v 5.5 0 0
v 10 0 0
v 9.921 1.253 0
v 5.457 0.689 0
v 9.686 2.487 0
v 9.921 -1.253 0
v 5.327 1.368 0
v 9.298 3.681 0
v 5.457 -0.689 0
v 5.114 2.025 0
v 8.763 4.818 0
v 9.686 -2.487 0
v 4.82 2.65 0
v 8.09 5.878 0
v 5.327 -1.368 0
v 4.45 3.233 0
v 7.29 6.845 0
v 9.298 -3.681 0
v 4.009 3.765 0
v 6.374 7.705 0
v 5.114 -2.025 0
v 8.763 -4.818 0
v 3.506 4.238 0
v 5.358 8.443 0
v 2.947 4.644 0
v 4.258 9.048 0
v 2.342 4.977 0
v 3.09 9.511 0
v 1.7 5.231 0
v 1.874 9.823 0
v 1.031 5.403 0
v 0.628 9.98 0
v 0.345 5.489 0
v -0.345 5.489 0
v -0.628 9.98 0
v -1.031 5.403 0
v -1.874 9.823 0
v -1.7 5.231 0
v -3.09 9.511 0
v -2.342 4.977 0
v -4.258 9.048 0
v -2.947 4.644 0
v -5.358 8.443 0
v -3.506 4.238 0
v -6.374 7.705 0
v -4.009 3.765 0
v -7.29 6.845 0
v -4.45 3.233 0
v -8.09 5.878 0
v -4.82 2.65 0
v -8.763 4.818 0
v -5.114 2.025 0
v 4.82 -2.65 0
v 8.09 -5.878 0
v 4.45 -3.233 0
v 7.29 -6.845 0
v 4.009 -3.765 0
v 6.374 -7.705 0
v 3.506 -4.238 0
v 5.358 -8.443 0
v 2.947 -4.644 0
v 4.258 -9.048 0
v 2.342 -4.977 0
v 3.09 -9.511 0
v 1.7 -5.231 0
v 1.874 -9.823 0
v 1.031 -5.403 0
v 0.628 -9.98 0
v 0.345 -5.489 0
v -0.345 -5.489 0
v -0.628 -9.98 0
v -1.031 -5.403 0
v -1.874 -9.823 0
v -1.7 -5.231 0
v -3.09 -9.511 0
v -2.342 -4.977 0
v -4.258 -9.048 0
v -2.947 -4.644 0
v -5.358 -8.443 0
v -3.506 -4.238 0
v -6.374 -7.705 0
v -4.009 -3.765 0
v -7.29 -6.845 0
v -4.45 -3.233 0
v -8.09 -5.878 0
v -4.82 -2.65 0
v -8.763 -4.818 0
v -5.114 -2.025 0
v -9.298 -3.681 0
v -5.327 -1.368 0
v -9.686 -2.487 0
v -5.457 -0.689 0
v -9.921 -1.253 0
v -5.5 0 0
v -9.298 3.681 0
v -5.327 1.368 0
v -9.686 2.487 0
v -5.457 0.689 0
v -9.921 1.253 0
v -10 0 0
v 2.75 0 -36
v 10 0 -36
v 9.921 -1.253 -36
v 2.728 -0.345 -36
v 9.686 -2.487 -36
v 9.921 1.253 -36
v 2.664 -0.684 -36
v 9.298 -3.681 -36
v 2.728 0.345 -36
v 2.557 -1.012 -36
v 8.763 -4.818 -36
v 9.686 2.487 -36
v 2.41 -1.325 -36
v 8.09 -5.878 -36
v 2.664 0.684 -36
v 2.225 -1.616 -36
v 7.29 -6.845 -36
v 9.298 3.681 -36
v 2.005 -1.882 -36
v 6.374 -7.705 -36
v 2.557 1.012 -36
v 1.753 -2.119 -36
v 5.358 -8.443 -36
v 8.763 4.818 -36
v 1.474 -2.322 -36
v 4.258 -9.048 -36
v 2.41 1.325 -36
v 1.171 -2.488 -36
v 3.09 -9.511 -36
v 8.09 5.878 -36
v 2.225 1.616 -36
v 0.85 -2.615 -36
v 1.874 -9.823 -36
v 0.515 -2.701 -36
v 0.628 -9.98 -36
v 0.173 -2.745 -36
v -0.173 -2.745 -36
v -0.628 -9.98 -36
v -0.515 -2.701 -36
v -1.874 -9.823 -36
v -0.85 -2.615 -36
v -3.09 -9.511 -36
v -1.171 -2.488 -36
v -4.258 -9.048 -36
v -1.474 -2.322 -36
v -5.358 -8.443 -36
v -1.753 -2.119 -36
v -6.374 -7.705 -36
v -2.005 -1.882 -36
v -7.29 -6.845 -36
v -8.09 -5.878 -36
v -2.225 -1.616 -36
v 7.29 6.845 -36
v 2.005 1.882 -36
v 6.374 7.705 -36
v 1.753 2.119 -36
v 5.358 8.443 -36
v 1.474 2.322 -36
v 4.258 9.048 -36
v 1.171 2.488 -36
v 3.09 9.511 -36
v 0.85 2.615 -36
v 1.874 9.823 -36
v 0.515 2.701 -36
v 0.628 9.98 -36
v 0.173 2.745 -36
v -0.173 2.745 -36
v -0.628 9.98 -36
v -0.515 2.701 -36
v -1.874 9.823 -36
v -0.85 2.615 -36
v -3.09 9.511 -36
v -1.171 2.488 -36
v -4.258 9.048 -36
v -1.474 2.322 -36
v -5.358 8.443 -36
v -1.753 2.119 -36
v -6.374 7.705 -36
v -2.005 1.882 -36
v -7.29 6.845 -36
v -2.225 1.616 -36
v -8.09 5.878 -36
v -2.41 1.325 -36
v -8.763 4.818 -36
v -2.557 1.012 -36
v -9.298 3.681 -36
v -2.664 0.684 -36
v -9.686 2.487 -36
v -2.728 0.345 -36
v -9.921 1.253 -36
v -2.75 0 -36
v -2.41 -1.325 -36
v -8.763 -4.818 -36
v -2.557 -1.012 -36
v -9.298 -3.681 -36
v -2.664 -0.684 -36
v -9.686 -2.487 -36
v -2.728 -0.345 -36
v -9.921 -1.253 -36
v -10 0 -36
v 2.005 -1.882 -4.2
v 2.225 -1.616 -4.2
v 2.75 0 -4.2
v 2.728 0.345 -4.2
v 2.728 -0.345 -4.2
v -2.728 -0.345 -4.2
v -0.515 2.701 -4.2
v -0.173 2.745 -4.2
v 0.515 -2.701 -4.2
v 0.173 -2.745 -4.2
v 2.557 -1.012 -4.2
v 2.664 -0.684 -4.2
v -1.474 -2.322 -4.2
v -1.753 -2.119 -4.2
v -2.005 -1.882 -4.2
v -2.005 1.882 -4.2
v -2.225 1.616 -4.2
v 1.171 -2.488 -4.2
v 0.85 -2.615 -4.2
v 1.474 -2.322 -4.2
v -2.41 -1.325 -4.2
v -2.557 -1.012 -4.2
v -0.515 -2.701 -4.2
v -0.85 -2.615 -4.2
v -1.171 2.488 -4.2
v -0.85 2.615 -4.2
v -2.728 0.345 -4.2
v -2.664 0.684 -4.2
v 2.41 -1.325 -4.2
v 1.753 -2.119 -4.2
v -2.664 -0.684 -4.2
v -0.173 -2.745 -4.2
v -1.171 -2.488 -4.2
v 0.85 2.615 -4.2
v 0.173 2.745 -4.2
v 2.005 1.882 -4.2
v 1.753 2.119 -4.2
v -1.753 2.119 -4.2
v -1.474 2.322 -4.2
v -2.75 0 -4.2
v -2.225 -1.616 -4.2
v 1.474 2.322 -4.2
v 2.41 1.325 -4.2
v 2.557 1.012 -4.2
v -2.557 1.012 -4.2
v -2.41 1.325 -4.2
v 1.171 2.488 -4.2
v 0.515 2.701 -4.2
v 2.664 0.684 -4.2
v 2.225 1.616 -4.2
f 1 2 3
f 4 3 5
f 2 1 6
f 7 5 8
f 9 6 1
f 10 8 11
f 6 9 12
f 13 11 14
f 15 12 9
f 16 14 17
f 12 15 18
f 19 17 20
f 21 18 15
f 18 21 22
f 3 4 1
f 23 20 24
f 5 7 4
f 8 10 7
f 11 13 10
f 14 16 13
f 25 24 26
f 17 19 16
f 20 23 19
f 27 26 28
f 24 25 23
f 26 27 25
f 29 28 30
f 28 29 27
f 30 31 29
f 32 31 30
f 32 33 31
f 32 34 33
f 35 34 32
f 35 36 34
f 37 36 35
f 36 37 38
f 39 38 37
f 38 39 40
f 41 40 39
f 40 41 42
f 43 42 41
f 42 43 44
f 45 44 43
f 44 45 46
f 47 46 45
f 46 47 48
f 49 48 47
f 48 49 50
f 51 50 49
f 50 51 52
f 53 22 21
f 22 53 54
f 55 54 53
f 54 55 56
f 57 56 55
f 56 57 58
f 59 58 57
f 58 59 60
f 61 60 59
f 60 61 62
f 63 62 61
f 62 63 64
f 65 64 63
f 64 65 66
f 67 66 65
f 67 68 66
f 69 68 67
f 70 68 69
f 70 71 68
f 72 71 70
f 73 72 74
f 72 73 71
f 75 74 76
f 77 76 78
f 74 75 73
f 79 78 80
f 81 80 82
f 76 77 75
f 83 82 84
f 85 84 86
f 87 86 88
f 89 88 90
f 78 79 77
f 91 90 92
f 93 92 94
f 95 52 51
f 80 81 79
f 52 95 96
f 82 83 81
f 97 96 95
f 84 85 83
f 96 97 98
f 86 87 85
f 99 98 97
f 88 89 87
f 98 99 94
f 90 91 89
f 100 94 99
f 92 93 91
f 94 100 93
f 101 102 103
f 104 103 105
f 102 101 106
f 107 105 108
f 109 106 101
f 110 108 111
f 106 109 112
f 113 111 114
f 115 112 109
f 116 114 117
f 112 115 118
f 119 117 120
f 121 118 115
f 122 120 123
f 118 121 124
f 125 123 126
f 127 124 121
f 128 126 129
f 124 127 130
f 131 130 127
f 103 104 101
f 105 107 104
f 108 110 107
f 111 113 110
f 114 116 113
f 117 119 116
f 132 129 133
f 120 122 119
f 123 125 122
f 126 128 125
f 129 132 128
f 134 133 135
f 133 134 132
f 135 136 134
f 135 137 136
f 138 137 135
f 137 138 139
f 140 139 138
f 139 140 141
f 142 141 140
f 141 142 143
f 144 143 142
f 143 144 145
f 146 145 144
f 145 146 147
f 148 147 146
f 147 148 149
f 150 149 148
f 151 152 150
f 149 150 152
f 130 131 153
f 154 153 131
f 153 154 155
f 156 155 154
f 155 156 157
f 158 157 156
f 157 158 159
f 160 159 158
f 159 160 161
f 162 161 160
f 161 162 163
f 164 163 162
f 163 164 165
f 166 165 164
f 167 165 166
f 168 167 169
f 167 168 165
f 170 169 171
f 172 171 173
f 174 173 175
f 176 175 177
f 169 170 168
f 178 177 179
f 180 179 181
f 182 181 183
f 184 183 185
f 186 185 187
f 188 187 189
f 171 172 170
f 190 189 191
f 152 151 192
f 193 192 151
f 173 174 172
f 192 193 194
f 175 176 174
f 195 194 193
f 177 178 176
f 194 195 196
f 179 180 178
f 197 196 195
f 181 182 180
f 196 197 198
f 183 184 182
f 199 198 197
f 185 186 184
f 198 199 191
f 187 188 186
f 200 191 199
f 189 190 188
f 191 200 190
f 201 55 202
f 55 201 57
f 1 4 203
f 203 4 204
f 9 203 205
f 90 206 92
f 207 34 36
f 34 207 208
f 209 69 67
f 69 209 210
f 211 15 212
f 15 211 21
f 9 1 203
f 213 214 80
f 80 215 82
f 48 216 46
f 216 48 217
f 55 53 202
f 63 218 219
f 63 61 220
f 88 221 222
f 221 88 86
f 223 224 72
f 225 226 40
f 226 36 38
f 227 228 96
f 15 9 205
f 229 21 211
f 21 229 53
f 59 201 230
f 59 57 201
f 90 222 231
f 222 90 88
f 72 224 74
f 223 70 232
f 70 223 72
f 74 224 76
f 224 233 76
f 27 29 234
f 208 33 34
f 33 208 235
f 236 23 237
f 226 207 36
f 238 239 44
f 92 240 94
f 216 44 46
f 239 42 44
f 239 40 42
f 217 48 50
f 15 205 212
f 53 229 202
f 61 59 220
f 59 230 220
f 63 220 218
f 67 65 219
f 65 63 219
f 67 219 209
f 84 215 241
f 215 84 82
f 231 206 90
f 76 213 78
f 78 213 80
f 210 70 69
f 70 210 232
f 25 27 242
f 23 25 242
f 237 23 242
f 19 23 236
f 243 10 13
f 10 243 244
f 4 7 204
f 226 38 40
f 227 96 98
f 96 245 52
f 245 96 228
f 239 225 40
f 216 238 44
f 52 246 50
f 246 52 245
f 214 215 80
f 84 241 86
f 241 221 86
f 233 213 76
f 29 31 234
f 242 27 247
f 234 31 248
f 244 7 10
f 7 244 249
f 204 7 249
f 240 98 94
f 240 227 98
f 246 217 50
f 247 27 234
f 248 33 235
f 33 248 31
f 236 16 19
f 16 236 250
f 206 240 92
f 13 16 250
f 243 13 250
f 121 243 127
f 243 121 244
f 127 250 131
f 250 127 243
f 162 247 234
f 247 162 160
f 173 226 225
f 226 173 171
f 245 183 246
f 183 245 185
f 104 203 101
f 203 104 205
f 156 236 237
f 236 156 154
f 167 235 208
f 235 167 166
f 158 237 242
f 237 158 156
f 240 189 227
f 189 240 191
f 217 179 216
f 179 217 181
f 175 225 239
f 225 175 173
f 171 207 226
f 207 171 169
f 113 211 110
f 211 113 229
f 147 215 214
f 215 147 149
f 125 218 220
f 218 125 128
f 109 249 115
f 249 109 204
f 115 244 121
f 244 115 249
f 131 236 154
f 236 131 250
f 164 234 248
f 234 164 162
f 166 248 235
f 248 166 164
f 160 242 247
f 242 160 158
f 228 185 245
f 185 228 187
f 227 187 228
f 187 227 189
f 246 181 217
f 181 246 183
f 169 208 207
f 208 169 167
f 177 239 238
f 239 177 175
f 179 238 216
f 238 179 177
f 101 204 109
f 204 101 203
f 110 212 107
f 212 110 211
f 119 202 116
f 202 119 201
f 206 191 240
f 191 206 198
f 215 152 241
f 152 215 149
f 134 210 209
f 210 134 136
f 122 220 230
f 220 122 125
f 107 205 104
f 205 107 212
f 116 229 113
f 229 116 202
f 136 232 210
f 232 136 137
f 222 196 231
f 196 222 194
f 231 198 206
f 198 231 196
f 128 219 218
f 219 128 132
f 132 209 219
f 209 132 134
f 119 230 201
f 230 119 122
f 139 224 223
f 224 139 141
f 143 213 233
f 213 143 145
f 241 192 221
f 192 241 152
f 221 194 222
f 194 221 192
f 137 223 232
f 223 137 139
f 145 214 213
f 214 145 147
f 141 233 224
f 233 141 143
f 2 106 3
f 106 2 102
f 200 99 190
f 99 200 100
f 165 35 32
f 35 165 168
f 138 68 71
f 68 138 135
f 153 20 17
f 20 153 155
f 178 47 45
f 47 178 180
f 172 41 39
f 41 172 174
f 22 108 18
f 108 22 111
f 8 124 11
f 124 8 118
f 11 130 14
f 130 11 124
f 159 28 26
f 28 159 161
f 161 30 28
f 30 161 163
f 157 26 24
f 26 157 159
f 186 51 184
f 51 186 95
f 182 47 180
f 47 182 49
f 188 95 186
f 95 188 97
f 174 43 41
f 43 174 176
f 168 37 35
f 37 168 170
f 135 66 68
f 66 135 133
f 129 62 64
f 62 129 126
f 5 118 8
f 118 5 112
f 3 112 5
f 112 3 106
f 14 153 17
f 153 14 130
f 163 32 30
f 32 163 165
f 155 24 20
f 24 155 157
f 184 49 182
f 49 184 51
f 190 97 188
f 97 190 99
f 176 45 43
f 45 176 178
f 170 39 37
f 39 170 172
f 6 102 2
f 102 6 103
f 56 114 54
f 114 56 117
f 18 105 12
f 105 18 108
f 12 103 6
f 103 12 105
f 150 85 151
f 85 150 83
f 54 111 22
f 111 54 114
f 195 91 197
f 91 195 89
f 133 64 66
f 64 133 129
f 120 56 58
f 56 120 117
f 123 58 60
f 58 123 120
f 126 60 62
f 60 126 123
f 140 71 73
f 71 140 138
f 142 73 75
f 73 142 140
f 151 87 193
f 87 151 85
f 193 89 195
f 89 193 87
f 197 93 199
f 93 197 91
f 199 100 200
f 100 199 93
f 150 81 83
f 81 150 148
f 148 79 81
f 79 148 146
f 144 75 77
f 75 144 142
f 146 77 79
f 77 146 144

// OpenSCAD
$fn = 50;


difference() {
	union() {
		translate(v = [0, 0, -36.0000000000]) {
			cylinder(h = 36, r = 10.0000000000);
		}
	}
	union() {
		translate(v = [0, 0, 0]) {
			rotate(a = [0, 0, 0]) {
				difference() {
					union() {
						#translate(v = [0, 0, -36.0000000000]) {
							cylinder(h = 36, r = 2.2500000000);
						}
						#translate(v = [0, 0, -4.2000000000]) {
							cylinder(h = 4.2000000000, r = 10.0000000000, r1 = 2.7500000000, r2 = 5.5000000000);
						}
						#translate(v = [0, 0, -36.0000000000]) {
							cylinder(h = 36, r = 2.7500000000);
						}
						#translate(v = [0, 0, -36.0000000000]) {
							cylinder(h = 36, r = 2.2500000000);
						}
					}
					union();
				}
			}
		}
	}
}
